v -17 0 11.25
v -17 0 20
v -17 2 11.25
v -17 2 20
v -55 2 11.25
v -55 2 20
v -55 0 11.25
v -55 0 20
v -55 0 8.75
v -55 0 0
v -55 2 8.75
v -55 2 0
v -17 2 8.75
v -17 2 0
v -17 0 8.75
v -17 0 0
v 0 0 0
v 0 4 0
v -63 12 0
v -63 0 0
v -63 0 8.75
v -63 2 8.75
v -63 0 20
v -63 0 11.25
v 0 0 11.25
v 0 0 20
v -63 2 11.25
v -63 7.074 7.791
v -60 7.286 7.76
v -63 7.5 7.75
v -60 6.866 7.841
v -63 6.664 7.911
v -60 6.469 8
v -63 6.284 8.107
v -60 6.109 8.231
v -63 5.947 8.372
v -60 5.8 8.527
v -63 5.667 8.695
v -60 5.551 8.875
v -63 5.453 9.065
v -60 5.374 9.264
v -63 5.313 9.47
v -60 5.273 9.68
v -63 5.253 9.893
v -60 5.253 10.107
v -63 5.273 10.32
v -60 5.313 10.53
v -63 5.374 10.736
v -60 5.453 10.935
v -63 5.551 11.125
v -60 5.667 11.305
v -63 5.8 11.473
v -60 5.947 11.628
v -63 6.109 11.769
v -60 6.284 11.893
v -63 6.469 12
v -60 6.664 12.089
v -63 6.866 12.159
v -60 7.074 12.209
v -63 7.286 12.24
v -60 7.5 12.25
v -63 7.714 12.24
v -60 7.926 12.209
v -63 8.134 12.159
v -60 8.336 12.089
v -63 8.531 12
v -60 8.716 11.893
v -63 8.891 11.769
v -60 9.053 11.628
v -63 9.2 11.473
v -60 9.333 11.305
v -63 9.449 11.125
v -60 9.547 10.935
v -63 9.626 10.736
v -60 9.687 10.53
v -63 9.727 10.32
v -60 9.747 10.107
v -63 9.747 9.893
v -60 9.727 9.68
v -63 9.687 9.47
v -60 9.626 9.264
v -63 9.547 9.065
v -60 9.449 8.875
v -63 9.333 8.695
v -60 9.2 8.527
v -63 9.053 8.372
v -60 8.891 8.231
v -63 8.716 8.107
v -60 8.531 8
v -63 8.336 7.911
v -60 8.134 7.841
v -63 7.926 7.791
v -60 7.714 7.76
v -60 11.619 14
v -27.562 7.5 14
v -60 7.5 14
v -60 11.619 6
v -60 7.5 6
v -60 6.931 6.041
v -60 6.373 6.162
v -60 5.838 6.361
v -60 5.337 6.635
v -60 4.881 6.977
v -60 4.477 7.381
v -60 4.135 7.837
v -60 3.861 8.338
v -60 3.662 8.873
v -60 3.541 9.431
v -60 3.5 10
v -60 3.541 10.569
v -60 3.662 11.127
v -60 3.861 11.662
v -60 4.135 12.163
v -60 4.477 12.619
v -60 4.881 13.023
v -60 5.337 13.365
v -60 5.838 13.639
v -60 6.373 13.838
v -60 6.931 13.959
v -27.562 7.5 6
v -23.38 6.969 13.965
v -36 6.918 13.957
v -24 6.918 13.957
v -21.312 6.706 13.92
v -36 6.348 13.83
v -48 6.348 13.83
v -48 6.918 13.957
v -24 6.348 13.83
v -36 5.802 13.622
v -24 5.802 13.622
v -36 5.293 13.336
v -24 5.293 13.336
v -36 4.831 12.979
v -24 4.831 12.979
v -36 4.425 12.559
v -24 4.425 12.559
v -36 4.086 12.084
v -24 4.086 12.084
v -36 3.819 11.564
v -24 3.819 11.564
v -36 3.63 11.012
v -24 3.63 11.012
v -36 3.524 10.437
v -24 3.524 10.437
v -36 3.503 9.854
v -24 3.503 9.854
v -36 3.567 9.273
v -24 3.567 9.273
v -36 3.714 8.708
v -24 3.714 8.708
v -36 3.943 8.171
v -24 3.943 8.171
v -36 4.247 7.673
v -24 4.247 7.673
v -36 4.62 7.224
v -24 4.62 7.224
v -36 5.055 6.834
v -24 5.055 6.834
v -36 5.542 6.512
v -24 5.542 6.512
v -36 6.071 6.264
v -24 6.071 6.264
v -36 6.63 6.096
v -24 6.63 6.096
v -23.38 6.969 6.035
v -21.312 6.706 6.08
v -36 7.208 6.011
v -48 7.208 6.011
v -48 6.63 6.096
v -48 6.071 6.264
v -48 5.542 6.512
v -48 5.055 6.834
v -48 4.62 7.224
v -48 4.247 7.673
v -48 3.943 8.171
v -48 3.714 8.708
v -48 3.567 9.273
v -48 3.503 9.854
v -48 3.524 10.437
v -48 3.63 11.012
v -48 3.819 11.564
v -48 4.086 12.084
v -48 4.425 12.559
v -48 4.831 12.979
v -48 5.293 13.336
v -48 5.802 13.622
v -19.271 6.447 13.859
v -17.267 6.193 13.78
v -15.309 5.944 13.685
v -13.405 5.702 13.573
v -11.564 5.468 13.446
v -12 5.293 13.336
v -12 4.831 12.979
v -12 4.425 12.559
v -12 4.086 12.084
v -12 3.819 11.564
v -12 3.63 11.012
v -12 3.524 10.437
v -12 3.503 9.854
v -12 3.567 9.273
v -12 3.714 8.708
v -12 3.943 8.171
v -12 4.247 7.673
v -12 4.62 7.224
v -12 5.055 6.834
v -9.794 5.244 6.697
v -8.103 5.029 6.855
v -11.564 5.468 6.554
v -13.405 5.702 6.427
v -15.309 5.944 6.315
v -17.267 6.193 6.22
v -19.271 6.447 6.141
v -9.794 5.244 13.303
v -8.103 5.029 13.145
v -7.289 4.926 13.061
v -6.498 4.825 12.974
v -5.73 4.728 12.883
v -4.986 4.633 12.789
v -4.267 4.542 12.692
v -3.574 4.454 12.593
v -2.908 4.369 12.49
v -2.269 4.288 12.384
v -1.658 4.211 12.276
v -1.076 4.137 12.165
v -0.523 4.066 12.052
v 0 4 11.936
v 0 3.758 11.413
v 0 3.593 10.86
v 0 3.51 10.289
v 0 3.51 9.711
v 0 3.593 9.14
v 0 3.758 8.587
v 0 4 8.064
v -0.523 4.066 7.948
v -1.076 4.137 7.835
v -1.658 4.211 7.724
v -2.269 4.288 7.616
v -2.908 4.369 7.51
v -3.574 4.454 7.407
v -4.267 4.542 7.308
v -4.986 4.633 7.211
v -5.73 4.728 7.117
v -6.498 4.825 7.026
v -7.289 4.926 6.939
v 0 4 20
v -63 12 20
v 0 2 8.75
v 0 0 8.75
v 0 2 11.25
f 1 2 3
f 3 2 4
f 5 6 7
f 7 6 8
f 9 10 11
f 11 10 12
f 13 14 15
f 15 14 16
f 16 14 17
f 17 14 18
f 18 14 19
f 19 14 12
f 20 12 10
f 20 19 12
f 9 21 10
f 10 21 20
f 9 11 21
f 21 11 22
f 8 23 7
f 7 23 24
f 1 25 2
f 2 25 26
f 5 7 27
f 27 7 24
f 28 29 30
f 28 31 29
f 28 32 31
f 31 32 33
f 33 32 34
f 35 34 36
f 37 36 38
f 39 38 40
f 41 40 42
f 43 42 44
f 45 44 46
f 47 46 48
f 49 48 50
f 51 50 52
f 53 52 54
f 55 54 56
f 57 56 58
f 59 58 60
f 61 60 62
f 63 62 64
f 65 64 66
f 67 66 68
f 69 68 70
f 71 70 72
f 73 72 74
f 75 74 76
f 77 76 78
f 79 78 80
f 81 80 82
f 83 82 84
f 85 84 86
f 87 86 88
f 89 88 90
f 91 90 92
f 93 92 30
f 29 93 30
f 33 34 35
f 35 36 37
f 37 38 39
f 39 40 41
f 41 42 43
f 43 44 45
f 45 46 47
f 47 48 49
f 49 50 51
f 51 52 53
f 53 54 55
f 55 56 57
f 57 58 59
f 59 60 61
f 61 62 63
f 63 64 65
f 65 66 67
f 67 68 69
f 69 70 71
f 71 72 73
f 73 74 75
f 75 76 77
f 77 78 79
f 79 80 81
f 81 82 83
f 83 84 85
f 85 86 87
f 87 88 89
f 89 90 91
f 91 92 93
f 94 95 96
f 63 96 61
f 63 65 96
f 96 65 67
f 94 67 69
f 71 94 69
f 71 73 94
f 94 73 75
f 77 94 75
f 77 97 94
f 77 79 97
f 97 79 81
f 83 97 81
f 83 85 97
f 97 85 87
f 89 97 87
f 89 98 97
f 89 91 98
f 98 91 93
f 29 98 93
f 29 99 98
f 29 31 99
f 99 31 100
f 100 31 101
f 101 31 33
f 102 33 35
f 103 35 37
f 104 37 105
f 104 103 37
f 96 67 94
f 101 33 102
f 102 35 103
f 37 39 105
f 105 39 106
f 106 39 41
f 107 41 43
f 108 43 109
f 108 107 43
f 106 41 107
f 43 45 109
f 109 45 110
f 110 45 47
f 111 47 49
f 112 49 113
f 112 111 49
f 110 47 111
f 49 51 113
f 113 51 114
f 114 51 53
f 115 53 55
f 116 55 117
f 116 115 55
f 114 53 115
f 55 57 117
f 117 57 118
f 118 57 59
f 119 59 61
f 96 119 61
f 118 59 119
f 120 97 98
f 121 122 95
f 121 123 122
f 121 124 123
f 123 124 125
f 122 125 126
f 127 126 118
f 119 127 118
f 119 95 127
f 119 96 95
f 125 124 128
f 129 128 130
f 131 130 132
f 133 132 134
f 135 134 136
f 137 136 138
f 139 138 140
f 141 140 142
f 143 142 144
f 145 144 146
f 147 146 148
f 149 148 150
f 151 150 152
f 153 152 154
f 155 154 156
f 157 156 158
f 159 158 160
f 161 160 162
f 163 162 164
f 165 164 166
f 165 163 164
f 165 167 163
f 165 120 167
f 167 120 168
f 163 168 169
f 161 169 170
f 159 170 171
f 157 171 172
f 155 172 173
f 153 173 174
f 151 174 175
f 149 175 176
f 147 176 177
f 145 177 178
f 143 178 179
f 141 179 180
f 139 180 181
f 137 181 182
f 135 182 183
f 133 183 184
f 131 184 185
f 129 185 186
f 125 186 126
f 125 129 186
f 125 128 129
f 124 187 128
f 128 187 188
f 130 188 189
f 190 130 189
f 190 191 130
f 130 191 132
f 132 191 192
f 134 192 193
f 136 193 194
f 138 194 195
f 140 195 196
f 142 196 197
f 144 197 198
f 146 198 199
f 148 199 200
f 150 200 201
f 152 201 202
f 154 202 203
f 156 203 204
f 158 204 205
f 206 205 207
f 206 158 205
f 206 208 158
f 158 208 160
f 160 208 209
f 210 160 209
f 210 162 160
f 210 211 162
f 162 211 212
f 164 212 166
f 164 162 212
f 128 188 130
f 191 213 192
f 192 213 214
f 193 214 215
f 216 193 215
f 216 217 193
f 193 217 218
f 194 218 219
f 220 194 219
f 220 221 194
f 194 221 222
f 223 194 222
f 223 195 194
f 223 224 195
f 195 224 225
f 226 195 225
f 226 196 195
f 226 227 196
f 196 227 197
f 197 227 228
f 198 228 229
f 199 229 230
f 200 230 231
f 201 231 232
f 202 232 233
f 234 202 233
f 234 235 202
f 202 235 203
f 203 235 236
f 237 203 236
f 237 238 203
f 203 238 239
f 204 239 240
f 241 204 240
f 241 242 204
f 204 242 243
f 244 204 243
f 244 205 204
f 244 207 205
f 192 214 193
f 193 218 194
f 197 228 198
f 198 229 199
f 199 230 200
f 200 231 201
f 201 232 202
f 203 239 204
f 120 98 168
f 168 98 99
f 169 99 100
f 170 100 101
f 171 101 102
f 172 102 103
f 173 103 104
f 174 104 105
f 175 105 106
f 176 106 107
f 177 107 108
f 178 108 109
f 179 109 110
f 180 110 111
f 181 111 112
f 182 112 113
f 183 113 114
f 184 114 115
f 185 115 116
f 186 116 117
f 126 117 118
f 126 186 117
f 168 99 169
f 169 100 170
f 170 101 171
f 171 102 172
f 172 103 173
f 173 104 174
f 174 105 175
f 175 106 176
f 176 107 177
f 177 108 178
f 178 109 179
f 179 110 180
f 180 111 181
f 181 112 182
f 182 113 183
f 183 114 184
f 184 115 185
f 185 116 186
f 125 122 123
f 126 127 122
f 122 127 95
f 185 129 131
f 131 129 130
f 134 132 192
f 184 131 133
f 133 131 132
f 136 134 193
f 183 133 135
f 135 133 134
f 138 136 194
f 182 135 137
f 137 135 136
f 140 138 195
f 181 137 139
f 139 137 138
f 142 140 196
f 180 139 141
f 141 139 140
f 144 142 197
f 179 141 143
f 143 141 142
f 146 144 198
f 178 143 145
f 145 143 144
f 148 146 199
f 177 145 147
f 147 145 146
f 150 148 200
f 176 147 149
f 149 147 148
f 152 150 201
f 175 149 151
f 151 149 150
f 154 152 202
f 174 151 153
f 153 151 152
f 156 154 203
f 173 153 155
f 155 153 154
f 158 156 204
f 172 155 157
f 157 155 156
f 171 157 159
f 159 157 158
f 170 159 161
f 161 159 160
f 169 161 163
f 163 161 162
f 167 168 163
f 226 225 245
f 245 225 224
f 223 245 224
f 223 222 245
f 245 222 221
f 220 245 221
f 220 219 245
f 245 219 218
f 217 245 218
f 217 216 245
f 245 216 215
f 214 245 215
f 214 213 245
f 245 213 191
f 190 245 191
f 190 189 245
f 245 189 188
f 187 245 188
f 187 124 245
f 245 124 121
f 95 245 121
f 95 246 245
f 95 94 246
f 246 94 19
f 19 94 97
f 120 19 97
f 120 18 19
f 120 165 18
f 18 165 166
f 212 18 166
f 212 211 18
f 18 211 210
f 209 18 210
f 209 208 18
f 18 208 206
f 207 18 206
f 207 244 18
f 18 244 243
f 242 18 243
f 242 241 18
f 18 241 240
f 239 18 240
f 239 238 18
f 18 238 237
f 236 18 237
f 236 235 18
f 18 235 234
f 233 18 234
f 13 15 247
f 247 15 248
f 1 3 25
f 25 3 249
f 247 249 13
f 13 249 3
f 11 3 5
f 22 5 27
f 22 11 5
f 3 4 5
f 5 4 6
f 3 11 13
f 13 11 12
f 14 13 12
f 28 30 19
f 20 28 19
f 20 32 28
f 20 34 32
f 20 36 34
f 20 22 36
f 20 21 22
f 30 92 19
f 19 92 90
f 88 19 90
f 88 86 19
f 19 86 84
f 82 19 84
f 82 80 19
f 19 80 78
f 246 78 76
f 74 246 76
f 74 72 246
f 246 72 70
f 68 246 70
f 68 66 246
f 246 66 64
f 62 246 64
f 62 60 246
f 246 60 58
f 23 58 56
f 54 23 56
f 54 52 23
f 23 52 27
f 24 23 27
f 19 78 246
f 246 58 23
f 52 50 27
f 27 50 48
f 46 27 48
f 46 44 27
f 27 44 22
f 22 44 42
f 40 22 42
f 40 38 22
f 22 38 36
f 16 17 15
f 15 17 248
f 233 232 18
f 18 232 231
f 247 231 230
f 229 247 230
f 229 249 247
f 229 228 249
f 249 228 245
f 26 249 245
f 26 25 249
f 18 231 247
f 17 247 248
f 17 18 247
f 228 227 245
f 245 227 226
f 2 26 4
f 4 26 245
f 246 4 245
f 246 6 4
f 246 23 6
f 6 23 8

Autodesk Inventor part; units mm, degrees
ref_plane "YZ Plane" through (0, 0, 0) normal (1, 0, 0) x (0, 1, 0)
ref_plane "XZ Plane" through (0, 0, 0) normal (0, 1, 0) x (-1, 0, 0)
ref_plane "XY Plane" through (0, 0, 0) normal (0, 0, 1) x (1, 0, 0)
sketch "Sketch1" plane through (0, 0, 0) normal (0, 0, 1) x (1, 0, 0)
  line L0 (0, 0) -> (0, 4)
  line L1 (0, 0) -> (-63, 0)
  line L2 (-63, 0) -> (-63, 12)
  line L3 (-63, 12) -> (0, 4)
  dimension "d0" = 4
  dimension "d1" = 63
  dimension "d2" = 12
extrude "Extrusion1" add sketch "Sketch1" along normal blind 20
sketch "Sketch2" plane through (-63, 0, 0) normal (-1, 0, 0) x (0, 0, 1)
  line L0 (0, 0) -> (20, 0) projected
  line L1 (10, 0) -> (8.75, 0)
  line L2 (8.75, 0) -> (8.75, 2)
  line L3 (8.75, 2) -> (10, 2)
  line L4 (10, 2) -> (10, 0)
  line L5 (10, 0) -> (11.25, 0)
  line L6 (11.25, 0) -> (11.25, 2)
  line L7 (11.25, 2) -> (10, 2)
  line L8 (10, 2) -> (10, 0)
  line L9 (0, 0) -> (20, 0) projected
  dimension "d5" = 1.25
  dimension "d6" = 2
  dimension "d7" = 1.25
extrude "Extrusion2" cut sketch "Sketch2" against normal through all
ref_plane "Work Plane1" through (-60, 0, 0) normal (-1, 0, 0) x (0, 0, 1)
sketch "Sketch3" plane through (-60, 0, 0) normal (-1, 0, 0) x (0, 0, 1)
  line L0 (0, 12) -> (20, 12) projected
  circle A0 centre (10, 7.5) radius 4
  line L1 (6, 7.5) -> (14, 7.5)
  line L2 (14, 7.5) -> (14, 12)
  line L3 (14, 12) -> (6, 12)
  line L4 (6, 12) -> (6, 7.5)
  line L5 (20, 4) -> (20, 12) projected
  point P0 (0, 0)
  dimension "d12" = 8
  dimension "d11" = 4.5
  dimension "d27" = 10
extrude "Extrusion3" cut sketch "Sketch3" against normal through all
hole "Hole1" at (-60, 7.5, 10) direction (-1, 0, 0) diameter 4.5 end through all
sketch "Sketch4" plane through (-63, 0, 0) normal (0, -1, 0) x (1, 0, 0)
  point P0 (63, 0)
sketch "Sketch5" plane through (-63, 0, 0) normal (0, -1, 0) x (1, 0, 0)
  line L0 (46, 20) -> (46, 0)
  line L1 (8, 0) -> (46, 0)
  line L2 (46, 0) -> (46, 20)
  line L3 (46, 20) -> (8, 20)
  line L4 (8, 20) -> (8, 0)
  point P0 (0, 0)
  dimension "d23" = 46
  dimension "d26" = 8
extrude "Extrusion4" cut sketch "Sketch5" against normal up to surface (2 mm away)
properties part number "support_lcd_v2"
